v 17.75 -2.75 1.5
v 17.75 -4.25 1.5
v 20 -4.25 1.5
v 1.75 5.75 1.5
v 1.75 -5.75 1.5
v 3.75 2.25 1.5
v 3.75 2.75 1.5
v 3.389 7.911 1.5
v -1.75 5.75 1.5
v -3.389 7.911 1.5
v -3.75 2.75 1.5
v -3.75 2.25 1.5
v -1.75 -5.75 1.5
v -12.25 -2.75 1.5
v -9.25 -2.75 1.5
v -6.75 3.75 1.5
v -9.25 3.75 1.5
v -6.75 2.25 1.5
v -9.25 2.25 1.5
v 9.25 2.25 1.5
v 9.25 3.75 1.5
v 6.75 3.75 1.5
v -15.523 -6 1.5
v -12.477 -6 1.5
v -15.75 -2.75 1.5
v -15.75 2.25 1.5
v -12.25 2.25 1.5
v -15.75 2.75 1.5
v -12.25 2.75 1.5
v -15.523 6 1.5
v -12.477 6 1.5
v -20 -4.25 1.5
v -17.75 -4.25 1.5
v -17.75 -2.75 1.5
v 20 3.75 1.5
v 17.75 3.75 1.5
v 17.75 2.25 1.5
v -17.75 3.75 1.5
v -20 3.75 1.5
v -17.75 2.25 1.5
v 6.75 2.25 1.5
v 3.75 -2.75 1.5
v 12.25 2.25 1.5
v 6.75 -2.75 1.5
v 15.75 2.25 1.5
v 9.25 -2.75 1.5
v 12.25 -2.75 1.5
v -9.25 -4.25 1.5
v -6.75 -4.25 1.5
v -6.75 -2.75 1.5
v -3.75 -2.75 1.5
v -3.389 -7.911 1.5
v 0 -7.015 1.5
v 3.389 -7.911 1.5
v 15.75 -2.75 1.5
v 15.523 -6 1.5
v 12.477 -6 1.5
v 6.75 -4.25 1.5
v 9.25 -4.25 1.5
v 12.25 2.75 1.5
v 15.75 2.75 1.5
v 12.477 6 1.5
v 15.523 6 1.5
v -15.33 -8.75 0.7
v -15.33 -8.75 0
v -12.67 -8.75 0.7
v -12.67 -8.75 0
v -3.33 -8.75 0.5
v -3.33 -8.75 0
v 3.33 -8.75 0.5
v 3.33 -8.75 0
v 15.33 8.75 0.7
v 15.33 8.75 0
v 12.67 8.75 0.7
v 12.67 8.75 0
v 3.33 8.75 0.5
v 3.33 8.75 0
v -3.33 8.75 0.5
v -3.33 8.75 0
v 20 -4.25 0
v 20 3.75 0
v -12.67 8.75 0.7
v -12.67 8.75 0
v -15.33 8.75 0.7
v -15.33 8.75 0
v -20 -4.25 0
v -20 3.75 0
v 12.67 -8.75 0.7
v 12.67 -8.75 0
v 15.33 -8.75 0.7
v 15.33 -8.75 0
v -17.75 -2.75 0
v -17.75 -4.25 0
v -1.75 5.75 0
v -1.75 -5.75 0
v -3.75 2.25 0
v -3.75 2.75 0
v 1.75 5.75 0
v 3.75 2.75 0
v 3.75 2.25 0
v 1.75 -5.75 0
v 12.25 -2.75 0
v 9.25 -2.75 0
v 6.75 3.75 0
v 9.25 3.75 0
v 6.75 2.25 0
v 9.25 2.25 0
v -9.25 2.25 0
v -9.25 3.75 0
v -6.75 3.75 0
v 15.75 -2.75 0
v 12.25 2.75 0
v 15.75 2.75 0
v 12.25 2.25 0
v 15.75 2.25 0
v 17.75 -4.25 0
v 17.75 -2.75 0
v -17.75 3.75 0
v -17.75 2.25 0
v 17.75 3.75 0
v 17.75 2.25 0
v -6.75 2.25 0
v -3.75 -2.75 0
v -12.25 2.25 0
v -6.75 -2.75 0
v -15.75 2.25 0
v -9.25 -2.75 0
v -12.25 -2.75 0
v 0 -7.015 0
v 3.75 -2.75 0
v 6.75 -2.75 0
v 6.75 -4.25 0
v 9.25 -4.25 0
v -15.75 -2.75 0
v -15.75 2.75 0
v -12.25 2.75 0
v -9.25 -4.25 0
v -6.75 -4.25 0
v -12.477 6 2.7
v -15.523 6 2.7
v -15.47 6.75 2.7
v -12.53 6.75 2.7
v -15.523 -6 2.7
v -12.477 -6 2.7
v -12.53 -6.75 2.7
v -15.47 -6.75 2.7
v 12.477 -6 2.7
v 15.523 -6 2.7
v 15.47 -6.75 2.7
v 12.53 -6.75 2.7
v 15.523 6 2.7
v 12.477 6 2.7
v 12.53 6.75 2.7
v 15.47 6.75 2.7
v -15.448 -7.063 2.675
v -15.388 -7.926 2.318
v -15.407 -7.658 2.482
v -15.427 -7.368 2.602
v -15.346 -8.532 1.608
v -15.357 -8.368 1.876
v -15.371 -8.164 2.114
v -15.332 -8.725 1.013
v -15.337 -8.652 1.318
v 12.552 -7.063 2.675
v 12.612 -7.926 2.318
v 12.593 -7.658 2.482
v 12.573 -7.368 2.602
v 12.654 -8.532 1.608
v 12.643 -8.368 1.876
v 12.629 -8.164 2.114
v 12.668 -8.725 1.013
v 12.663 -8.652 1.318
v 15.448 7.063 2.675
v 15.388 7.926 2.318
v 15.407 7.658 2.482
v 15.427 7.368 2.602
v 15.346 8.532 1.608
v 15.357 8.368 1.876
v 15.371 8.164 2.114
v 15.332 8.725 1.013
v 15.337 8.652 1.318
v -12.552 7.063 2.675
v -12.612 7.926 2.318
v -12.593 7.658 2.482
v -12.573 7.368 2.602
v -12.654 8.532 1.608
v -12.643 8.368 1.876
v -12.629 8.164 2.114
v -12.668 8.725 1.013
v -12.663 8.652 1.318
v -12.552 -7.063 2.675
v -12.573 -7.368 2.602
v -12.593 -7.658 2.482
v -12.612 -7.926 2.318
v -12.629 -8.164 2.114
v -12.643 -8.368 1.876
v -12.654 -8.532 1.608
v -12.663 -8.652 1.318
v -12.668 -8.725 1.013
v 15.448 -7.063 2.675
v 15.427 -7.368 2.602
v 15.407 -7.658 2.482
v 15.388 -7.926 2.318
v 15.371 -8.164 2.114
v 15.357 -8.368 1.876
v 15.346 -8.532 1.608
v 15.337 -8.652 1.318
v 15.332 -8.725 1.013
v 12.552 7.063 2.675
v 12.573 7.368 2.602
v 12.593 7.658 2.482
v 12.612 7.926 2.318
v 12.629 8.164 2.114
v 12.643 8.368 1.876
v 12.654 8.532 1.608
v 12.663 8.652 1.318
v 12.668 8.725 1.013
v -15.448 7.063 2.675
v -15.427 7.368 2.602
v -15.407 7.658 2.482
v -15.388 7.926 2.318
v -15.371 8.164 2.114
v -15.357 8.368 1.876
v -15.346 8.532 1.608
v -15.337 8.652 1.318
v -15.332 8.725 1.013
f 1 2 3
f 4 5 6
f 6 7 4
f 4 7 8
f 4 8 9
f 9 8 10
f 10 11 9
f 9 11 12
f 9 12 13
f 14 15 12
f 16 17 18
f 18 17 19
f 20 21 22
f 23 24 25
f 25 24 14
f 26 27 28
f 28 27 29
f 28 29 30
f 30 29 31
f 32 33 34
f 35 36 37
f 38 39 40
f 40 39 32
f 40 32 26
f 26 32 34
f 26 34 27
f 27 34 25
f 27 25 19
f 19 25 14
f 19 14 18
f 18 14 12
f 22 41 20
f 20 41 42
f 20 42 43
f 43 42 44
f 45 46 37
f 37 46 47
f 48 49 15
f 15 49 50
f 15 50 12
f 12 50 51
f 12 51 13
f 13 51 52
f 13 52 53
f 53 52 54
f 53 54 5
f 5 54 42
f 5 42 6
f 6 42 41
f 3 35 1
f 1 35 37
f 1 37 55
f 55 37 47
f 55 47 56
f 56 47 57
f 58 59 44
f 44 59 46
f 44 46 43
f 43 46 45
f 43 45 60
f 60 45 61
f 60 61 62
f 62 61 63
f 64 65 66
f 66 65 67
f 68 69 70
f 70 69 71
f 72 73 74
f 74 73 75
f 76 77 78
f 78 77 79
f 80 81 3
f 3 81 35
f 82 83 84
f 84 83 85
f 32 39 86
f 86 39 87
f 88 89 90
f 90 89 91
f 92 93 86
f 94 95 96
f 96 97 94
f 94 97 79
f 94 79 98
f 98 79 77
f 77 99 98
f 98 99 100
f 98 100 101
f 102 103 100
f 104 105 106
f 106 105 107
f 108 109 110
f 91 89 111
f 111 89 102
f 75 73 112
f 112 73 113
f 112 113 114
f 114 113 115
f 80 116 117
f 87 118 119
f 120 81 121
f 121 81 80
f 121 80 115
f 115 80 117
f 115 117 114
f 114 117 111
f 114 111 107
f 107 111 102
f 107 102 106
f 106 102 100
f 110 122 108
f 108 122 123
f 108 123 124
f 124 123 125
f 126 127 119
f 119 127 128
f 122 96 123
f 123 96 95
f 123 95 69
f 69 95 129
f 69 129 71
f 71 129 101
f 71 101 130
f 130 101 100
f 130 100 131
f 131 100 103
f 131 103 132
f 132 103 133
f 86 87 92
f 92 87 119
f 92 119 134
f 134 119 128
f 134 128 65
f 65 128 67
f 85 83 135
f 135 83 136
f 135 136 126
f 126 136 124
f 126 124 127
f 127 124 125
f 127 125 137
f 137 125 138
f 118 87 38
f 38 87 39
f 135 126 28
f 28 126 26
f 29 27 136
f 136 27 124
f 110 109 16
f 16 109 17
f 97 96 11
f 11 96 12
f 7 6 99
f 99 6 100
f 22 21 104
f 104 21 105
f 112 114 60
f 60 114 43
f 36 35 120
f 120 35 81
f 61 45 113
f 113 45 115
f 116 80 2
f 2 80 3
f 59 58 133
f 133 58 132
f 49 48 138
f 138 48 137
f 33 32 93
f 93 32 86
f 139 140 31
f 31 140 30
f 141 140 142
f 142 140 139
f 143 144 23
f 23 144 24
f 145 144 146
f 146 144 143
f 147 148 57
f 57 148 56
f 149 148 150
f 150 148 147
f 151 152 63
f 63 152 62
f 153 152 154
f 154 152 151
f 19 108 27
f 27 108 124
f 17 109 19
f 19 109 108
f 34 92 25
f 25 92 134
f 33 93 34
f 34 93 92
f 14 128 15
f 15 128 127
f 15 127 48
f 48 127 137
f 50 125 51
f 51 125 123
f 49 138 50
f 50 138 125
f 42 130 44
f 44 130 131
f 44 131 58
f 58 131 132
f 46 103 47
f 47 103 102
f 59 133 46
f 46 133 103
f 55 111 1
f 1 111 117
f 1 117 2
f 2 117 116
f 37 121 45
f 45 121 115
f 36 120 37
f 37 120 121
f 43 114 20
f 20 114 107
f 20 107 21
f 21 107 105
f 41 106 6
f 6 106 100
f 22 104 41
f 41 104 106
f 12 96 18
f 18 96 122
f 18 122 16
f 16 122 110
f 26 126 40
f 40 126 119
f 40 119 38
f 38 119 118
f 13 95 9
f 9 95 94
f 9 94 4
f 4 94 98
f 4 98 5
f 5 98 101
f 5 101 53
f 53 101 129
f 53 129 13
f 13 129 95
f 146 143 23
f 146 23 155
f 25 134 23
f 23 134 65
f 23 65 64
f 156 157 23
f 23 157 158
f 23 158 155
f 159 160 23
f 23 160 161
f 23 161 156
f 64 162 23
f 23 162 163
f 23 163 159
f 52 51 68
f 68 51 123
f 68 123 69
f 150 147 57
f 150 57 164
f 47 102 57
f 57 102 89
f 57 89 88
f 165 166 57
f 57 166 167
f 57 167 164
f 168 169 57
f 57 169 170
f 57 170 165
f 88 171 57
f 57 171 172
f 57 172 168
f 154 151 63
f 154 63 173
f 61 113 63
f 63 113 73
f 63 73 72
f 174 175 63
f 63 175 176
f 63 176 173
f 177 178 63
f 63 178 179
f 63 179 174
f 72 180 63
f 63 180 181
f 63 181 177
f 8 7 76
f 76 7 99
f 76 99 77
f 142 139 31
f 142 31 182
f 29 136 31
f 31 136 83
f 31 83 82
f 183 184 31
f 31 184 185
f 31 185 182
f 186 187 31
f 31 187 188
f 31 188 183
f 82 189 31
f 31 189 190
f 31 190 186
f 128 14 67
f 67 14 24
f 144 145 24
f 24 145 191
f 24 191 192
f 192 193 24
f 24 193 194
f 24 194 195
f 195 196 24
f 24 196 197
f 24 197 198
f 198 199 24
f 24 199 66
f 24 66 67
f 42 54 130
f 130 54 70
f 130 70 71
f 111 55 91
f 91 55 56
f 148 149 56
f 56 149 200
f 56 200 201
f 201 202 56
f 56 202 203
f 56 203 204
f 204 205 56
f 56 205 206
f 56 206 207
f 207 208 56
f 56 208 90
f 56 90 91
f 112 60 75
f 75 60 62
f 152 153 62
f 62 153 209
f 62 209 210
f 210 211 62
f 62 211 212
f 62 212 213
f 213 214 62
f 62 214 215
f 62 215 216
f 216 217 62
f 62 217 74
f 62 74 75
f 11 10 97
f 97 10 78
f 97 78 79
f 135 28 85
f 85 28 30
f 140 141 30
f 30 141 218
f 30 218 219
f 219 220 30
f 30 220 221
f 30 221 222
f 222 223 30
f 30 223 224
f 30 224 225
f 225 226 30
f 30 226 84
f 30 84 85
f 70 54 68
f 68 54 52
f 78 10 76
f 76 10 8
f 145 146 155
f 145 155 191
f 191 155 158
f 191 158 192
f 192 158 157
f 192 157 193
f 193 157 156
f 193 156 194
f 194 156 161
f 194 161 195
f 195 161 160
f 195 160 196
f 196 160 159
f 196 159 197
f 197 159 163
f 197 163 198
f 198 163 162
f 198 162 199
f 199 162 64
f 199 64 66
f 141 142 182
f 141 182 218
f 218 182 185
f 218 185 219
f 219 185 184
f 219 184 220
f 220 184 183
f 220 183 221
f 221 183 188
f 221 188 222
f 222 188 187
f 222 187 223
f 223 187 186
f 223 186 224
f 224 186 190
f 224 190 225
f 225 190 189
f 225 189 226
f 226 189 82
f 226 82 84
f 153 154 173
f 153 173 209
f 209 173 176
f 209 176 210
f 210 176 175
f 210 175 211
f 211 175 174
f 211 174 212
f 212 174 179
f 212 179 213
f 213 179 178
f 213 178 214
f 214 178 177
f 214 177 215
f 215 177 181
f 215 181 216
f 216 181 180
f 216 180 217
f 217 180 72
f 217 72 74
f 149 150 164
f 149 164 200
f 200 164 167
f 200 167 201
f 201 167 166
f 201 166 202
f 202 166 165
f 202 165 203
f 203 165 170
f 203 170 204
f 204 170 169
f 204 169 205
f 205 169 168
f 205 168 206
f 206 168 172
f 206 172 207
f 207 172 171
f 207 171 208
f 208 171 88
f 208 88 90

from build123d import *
from OCP.BRepFilletAPI import BRepFilletAPI_MakeChamfer

# Parameters (mm, degrees)
ESBO_O10_W               = 40
ESBO_O10_H               = 17.5
RESSALTO_EXTRUS_O6_DEPTH = 1.5
CORTE_EXTRUS_O2_DEPTH    = 2.5
ESBO_O12_W               = 3.5
ESBO_O12_H               = 2.75
RESSALTO_EXTRUS_O7_DEPTH = 1.2
ESBO_O13_W               = 3
ESBO_O13_H               = 1.5
ESBO_O13_W_2             = 2
CORTE_EXTRUS_O3_DEPTH    = 8
CORTE_EXTRUS_O4_DEPTH    = 20
CHANFRO5_SIZE            = 6
CHANFRO5_SIZE_2          = 0.419560872
CHANFRO6_SIZE            = 1
CHANFRO6_SIZE2           = 0.839099631
FILETE1_R                = 2


with BuildPart() as part:
    # Esboço10 → Ressalto-extrusão6 (new body)
    with BuildSketch(Plane.XY):
        Rectangle(ESBO_O10_W, ESBO_O10_H)
    extrude(amount=RESSALTO_EXTRUS_O6_DEPTH)

    # Esboço11 → Corte-extrusão2 (cut)
    with BuildSketch(Plane.XY.offset(1.5)):
        Polygon((-20, 3.75), (-15.75, 3.75), (-15.75, 8.75), (-12.25, 8.75), (-12.25, 3.75), (-3.75, 3.75), (-3.75, 9.75), (3.75, 9.75), (3.75, 3.75), (12.25, 3.75), (12.25, 8.75), (15.75, 8.75), (15.75, 3.75), (20, 3.75), (20, 11.902365005), (-20, 11.902365005), align=None)
        Polygon((-20, -4.25), (-15.75, -4.25), (-15.75, -8.75), (-12.25, -8.75), (-12.25, -4.25), (-3.75, -4.25), (-3.75, -10.25), (3.75, -9.74672567), (3.75, -4.25), (12.25, -4.25), (12.25, -8.75), (15.75, -8.75), (15.75, -4.25), (20, -4.25), (20, -11.31917021), (-20, -11.31917021), align=None)
    extrude(amount=-CORTE_EXTRUS_O2_DEPTH, mode=Mode.SUBTRACT)

    # Esboço12 → Ressalto-extrusão7 (add)
    with BuildSketch(Plane.XY.offset(1.5)):
        with Locations((-14, 7.375)):
            Rectangle(ESBO_O12_W, ESBO_O12_H)
        with Locations((-14, -7.375)):
            Rectangle(ESBO_O12_W, ESBO_O12_H)
        with Locations((14, -7.375)):
            Rectangle(ESBO_O12_W, ESBO_O12_H)
        with Locations((14, 7.375)):
            Rectangle(ESBO_O12_W, ESBO_O12_H)
    extrude(amount=RESSALTO_EXTRUS_O7_DEPTH)

    # Esboço13 → Corte-extrusão3 (cut)
    with BuildSketch(Plane.XY.offset(1.5)):
        with Locations((-10.75, 3)):
            Rectangle(ESBO_O13_W, ESBO_O13_H)
        with Locations((-5.25, 3)):
            Rectangle(ESBO_O13_W, ESBO_O13_H)
        with Locations((5.25, 3)):
            Rectangle(ESBO_O13_W, ESBO_O13_H)
        with Locations((10.75, 3)):
            Rectangle(ESBO_O13_W, ESBO_O13_H)
        with Locations((10.75, -3.5)):
            Rectangle(ESBO_O13_W, ESBO_O13_H)
        with Locations((5.25, -3.5)):
            Rectangle(ESBO_O13_W, ESBO_O13_H)
        with Locations((-5.25, -3.5)):
            Rectangle(ESBO_O13_W, ESBO_O13_H)
        with Locations((-10.75, -3.5)):
            Rectangle(ESBO_O13_W, ESBO_O13_H)
        with Locations((-16.75, -3.5)):
            Rectangle(ESBO_O13_W_2, ESBO_O13_H)
        with Locations((-16.75, 3)):
            Rectangle(ESBO_O13_W_2, ESBO_O13_H)
        with Locations((16.75, 3)):
            Rectangle(ESBO_O13_W_2, ESBO_O13_H)
        with Locations((16.75, -3.5)):
            Rectangle(ESBO_O13_W_2, ESBO_O13_H)
    extrude(amount=-CORTE_EXTRUS_O3_DEPTH, mode=Mode.SUBTRACT)

    # Esboço15 → Corte-extrusão4 (cut)
    with BuildSketch(Plane.XY.offset(1.5)):
        Polygon((-1.75, 5.75), (1.75, 5.75), (1.75, -5.75), (0, -7.015048633), (-1.75, -5.75), align=None)
    extrude(amount=-CORTE_EXTRUS_O4_DEPTH, mode=Mode.SUBTRACT)

    # Chanfro5
    chanfro5_edges_1 = [part.edges().sort_by_distance(p)[0] for p in [
        (-15.75, -8.75, 1.35),
    ]]
    chanfro5_side_1 = [part.faces().sort_by_distance(p)[0] for p in [
        (-15.75, -8.741608783, 1.35),
    ]]
    chanfro5_edges_2 = [part.edges().sort_by_distance(p)[0] for p in [
        (-3.75, -8.75, 0.75),
    ]]
    chanfro5_side_2 = [part.faces().sort_by_distance(p)[0] for p in [
        (-3.75, -8.741608783, 0.75),
    ]]
    chanfro5_edges_3 = [part.edges().sort_by_distance(p)[0] for p in [
        (12.25, -8.75, 1.35),
    ]]
    chanfro5_side_3 = [part.faces().sort_by_distance(p)[0] for p in [
        (12.25, -8.741608783, 1.35),
    ]]
    chanfro5_edges_4 = [part.edges().sort_by_distance(p)[0] for p in [
        (15.75, 8.75, 1.35),
    ]]
    chanfro5_side_4 = [part.faces().sort_by_distance(p)[0] for p in [
        (15.741608783, 8.75, 1.35),
    ]]
    chanfro5_edges_5 = [part.edges().sort_by_distance(p)[0] for p in [
        (3.75, 8.75, 0.75),
    ]]
    chanfro5_side_5 = [part.faces().sort_by_distance(p)[0] for p in [
        (3.741608783, 8.75, 0.75),
    ]]
    chanfro5_edges_6 = [part.edges().sort_by_distance(p)[0] for p in [
        (-12.25, 8.75, 1.35),
    ]]
    chanfro5_side_6 = [part.faces().sort_by_distance(p)[0] for p in [
        (-12.258391217, 8.75, 1.35),
    ]]
    chanfro5_edges_7 = [part.edges().sort_by_distance(p)[0] for p in [
        (-12.25, -8.75, 1.35),
    ]]
    chanfro5_side_7 = [part.faces().sort_by_distance(p)[0] for p in [
        (-12.258391217, -8.75, 1.35),
    ]]
    chanfro5_edges_8 = [part.edges().sort_by_distance(p)[0] for p in [
        (3.75, -8.75, 0.75),
    ]]
    chanfro5_side_8 = [part.faces().sort_by_distance(p)[0] for p in [
        (3.741608783, -8.75, 0.75),
    ]]
    chanfro5_edges_9 = [part.edges().sort_by_distance(p)[0] for p in [
        (15.75, -8.75, 1.35),
    ]]
    chanfro5_side_9 = [part.faces().sort_by_distance(p)[0] for p in [
        (15.741608783, -8.75, 1.35),
    ]]
    chanfro5_edges_10 = [part.edges().sort_by_distance(p)[0] for p in [
        (12.25, 8.75, 1.35),
    ]]
    chanfro5_side_10 = [part.faces().sort_by_distance(p)[0] for p in [
        (12.25, 8.741608783, 1.35),
    ]]
    chanfro5_edges_11 = [part.edges().sort_by_distance(p)[0] for p in [
        (-3.75, 8.75, 0.75),
    ]]
    chanfro5_side_11 = [part.faces().sort_by_distance(p)[0] for p in [
        (-3.75, 8.741608783, 0.75),
    ]]
    chanfro5_edges_12 = [part.edges().sort_by_distance(p)[0] for p in [
        (-15.75, 8.75, 1.35),
    ]]
    chanfro5_side_12 = [part.faces().sort_by_distance(p)[0] for p in [
        (-15.741608783, 8.75, 1.35),
    ]]
    chanfro5 = BRepFilletAPI_MakeChamfer(part.part.solid().wrapped)
    for e in chanfro5_edges_1:
        chanfro5.Add(CHANFRO5_SIZE - 0.0001, CHANFRO5_SIZE_2 - 0.0001, e.wrapped, chanfro5_side_1[0].wrapped)
    for e in chanfro5_edges_2:
        chanfro5.Add(CHANFRO5_SIZE - 0.0001, CHANFRO5_SIZE_2 - 0.0001, e.wrapped, chanfro5_side_2[0].wrapped)
    for e in chanfro5_edges_3:
        chanfro5.Add(CHANFRO5_SIZE - 0.0001, CHANFRO5_SIZE_2 - 0.0001, e.wrapped, chanfro5_side_3[0].wrapped)
    for e in chanfro5_edges_4:
        chanfro5.Add(CHANFRO5_SIZE_2 - 0.0001, CHANFRO5_SIZE - 0.0001, e.wrapped, chanfro5_side_4[0].wrapped)
    for e in chanfro5_edges_5:
        chanfro5.Add(CHANFRO5_SIZE_2 - 0.0001, CHANFRO5_SIZE - 0.0001, e.wrapped, chanfro5_side_5[0].wrapped)
    for e in chanfro5_edges_6:
        chanfro5.Add(CHANFRO5_SIZE_2 - 0.0001, CHANFRO5_SIZE - 0.0001, e.wrapped, chanfro5_side_6[0].wrapped)
    for e in chanfro5_edges_7:
        chanfro5.Add(CHANFRO5_SIZE_2 - 0.0001, CHANFRO5_SIZE - 0.0001, e.wrapped, chanfro5_side_7[0].wrapped)
    for e in chanfro5_edges_8:
        chanfro5.Add(CHANFRO5_SIZE_2 - 0.0001, CHANFRO5_SIZE - 0.0001, e.wrapped, chanfro5_side_8[0].wrapped)
    for e in chanfro5_edges_9:
        chanfro5.Add(CHANFRO5_SIZE_2 - 0.0001, CHANFRO5_SIZE - 0.0001, e.wrapped, chanfro5_side_9[0].wrapped)
    for e in chanfro5_edges_10:
        chanfro5.Add(CHANFRO5_SIZE - 0.0001, CHANFRO5_SIZE_2 - 0.0001, e.wrapped, chanfro5_side_10[0].wrapped)
    for e in chanfro5_edges_11:
        chanfro5.Add(CHANFRO5_SIZE - 0.0001, CHANFRO5_SIZE_2 - 0.0001, e.wrapped, chanfro5_side_11[0].wrapped)
    for e in chanfro5_edges_12:
        chanfro5.Add(CHANFRO5_SIZE_2 - 0.0001, CHANFRO5_SIZE - 0.0001, e.wrapped, chanfro5_side_12[0].wrapped)
    add(Compound.cast(chanfro5.Shape()), mode=Mode.REPLACE)  # a hair under: the kernel refuses the full size

    # Chanfro6: one chamfer whose edges measure the first distance from different faces: ONE call of the kernel's chamfer builder (chamfer() names one face for all edges)
    chanfro6_edges_1 = [part.edges().sort_by_distance(p)[0] for p in [
        (0, -8.75, 1.5),
    ]]
    chanfro6_side_1 = [part.faces().sort_by_distance(p)[0] for p in [
        (0, -8.75, 0.75),
    ]]
    chanfro6_edges_2 = [part.edges().sort_by_distance(p)[0] for p in [
        (0, 8.75, 1.5),
    ]]
    chanfro6_side_2 = [part.faces().sort_by_distance(p)[0] for p in [
        (0, 8.75, 0.75),
    ]]
    chanfro6 = BRepFilletAPI_MakeChamfer(part.part.solid().wrapped)
    for e in chanfro6_edges_1:
        chanfro6.Add(CHANFRO6_SIZE, CHANFRO6_SIZE2, e.wrapped, chanfro6_side_1[0].wrapped)  # the first distance lies on this face
    for e in chanfro6_edges_2:
        chanfro6.Add(CHANFRO6_SIZE, CHANFRO6_SIZE2, e.wrapped, chanfro6_side_2[0].wrapped)  # the first distance lies on this face
    add(Compound.cast(chanfro6.Shape()), mode=Mode.REPLACE)

    # Filete1
    filete1_edges = [part.edges().sort_by_distance(p)[0] for p in [
        (-14, -8.75, 2.7),
        (14, -8.75, 2.7),
        (14, 8.75, 2.7),
        (-14, 8.75, 2.7),
    ]]
    fillet(filete1_edges, radius=FILETE1_R)


solid = part.part
